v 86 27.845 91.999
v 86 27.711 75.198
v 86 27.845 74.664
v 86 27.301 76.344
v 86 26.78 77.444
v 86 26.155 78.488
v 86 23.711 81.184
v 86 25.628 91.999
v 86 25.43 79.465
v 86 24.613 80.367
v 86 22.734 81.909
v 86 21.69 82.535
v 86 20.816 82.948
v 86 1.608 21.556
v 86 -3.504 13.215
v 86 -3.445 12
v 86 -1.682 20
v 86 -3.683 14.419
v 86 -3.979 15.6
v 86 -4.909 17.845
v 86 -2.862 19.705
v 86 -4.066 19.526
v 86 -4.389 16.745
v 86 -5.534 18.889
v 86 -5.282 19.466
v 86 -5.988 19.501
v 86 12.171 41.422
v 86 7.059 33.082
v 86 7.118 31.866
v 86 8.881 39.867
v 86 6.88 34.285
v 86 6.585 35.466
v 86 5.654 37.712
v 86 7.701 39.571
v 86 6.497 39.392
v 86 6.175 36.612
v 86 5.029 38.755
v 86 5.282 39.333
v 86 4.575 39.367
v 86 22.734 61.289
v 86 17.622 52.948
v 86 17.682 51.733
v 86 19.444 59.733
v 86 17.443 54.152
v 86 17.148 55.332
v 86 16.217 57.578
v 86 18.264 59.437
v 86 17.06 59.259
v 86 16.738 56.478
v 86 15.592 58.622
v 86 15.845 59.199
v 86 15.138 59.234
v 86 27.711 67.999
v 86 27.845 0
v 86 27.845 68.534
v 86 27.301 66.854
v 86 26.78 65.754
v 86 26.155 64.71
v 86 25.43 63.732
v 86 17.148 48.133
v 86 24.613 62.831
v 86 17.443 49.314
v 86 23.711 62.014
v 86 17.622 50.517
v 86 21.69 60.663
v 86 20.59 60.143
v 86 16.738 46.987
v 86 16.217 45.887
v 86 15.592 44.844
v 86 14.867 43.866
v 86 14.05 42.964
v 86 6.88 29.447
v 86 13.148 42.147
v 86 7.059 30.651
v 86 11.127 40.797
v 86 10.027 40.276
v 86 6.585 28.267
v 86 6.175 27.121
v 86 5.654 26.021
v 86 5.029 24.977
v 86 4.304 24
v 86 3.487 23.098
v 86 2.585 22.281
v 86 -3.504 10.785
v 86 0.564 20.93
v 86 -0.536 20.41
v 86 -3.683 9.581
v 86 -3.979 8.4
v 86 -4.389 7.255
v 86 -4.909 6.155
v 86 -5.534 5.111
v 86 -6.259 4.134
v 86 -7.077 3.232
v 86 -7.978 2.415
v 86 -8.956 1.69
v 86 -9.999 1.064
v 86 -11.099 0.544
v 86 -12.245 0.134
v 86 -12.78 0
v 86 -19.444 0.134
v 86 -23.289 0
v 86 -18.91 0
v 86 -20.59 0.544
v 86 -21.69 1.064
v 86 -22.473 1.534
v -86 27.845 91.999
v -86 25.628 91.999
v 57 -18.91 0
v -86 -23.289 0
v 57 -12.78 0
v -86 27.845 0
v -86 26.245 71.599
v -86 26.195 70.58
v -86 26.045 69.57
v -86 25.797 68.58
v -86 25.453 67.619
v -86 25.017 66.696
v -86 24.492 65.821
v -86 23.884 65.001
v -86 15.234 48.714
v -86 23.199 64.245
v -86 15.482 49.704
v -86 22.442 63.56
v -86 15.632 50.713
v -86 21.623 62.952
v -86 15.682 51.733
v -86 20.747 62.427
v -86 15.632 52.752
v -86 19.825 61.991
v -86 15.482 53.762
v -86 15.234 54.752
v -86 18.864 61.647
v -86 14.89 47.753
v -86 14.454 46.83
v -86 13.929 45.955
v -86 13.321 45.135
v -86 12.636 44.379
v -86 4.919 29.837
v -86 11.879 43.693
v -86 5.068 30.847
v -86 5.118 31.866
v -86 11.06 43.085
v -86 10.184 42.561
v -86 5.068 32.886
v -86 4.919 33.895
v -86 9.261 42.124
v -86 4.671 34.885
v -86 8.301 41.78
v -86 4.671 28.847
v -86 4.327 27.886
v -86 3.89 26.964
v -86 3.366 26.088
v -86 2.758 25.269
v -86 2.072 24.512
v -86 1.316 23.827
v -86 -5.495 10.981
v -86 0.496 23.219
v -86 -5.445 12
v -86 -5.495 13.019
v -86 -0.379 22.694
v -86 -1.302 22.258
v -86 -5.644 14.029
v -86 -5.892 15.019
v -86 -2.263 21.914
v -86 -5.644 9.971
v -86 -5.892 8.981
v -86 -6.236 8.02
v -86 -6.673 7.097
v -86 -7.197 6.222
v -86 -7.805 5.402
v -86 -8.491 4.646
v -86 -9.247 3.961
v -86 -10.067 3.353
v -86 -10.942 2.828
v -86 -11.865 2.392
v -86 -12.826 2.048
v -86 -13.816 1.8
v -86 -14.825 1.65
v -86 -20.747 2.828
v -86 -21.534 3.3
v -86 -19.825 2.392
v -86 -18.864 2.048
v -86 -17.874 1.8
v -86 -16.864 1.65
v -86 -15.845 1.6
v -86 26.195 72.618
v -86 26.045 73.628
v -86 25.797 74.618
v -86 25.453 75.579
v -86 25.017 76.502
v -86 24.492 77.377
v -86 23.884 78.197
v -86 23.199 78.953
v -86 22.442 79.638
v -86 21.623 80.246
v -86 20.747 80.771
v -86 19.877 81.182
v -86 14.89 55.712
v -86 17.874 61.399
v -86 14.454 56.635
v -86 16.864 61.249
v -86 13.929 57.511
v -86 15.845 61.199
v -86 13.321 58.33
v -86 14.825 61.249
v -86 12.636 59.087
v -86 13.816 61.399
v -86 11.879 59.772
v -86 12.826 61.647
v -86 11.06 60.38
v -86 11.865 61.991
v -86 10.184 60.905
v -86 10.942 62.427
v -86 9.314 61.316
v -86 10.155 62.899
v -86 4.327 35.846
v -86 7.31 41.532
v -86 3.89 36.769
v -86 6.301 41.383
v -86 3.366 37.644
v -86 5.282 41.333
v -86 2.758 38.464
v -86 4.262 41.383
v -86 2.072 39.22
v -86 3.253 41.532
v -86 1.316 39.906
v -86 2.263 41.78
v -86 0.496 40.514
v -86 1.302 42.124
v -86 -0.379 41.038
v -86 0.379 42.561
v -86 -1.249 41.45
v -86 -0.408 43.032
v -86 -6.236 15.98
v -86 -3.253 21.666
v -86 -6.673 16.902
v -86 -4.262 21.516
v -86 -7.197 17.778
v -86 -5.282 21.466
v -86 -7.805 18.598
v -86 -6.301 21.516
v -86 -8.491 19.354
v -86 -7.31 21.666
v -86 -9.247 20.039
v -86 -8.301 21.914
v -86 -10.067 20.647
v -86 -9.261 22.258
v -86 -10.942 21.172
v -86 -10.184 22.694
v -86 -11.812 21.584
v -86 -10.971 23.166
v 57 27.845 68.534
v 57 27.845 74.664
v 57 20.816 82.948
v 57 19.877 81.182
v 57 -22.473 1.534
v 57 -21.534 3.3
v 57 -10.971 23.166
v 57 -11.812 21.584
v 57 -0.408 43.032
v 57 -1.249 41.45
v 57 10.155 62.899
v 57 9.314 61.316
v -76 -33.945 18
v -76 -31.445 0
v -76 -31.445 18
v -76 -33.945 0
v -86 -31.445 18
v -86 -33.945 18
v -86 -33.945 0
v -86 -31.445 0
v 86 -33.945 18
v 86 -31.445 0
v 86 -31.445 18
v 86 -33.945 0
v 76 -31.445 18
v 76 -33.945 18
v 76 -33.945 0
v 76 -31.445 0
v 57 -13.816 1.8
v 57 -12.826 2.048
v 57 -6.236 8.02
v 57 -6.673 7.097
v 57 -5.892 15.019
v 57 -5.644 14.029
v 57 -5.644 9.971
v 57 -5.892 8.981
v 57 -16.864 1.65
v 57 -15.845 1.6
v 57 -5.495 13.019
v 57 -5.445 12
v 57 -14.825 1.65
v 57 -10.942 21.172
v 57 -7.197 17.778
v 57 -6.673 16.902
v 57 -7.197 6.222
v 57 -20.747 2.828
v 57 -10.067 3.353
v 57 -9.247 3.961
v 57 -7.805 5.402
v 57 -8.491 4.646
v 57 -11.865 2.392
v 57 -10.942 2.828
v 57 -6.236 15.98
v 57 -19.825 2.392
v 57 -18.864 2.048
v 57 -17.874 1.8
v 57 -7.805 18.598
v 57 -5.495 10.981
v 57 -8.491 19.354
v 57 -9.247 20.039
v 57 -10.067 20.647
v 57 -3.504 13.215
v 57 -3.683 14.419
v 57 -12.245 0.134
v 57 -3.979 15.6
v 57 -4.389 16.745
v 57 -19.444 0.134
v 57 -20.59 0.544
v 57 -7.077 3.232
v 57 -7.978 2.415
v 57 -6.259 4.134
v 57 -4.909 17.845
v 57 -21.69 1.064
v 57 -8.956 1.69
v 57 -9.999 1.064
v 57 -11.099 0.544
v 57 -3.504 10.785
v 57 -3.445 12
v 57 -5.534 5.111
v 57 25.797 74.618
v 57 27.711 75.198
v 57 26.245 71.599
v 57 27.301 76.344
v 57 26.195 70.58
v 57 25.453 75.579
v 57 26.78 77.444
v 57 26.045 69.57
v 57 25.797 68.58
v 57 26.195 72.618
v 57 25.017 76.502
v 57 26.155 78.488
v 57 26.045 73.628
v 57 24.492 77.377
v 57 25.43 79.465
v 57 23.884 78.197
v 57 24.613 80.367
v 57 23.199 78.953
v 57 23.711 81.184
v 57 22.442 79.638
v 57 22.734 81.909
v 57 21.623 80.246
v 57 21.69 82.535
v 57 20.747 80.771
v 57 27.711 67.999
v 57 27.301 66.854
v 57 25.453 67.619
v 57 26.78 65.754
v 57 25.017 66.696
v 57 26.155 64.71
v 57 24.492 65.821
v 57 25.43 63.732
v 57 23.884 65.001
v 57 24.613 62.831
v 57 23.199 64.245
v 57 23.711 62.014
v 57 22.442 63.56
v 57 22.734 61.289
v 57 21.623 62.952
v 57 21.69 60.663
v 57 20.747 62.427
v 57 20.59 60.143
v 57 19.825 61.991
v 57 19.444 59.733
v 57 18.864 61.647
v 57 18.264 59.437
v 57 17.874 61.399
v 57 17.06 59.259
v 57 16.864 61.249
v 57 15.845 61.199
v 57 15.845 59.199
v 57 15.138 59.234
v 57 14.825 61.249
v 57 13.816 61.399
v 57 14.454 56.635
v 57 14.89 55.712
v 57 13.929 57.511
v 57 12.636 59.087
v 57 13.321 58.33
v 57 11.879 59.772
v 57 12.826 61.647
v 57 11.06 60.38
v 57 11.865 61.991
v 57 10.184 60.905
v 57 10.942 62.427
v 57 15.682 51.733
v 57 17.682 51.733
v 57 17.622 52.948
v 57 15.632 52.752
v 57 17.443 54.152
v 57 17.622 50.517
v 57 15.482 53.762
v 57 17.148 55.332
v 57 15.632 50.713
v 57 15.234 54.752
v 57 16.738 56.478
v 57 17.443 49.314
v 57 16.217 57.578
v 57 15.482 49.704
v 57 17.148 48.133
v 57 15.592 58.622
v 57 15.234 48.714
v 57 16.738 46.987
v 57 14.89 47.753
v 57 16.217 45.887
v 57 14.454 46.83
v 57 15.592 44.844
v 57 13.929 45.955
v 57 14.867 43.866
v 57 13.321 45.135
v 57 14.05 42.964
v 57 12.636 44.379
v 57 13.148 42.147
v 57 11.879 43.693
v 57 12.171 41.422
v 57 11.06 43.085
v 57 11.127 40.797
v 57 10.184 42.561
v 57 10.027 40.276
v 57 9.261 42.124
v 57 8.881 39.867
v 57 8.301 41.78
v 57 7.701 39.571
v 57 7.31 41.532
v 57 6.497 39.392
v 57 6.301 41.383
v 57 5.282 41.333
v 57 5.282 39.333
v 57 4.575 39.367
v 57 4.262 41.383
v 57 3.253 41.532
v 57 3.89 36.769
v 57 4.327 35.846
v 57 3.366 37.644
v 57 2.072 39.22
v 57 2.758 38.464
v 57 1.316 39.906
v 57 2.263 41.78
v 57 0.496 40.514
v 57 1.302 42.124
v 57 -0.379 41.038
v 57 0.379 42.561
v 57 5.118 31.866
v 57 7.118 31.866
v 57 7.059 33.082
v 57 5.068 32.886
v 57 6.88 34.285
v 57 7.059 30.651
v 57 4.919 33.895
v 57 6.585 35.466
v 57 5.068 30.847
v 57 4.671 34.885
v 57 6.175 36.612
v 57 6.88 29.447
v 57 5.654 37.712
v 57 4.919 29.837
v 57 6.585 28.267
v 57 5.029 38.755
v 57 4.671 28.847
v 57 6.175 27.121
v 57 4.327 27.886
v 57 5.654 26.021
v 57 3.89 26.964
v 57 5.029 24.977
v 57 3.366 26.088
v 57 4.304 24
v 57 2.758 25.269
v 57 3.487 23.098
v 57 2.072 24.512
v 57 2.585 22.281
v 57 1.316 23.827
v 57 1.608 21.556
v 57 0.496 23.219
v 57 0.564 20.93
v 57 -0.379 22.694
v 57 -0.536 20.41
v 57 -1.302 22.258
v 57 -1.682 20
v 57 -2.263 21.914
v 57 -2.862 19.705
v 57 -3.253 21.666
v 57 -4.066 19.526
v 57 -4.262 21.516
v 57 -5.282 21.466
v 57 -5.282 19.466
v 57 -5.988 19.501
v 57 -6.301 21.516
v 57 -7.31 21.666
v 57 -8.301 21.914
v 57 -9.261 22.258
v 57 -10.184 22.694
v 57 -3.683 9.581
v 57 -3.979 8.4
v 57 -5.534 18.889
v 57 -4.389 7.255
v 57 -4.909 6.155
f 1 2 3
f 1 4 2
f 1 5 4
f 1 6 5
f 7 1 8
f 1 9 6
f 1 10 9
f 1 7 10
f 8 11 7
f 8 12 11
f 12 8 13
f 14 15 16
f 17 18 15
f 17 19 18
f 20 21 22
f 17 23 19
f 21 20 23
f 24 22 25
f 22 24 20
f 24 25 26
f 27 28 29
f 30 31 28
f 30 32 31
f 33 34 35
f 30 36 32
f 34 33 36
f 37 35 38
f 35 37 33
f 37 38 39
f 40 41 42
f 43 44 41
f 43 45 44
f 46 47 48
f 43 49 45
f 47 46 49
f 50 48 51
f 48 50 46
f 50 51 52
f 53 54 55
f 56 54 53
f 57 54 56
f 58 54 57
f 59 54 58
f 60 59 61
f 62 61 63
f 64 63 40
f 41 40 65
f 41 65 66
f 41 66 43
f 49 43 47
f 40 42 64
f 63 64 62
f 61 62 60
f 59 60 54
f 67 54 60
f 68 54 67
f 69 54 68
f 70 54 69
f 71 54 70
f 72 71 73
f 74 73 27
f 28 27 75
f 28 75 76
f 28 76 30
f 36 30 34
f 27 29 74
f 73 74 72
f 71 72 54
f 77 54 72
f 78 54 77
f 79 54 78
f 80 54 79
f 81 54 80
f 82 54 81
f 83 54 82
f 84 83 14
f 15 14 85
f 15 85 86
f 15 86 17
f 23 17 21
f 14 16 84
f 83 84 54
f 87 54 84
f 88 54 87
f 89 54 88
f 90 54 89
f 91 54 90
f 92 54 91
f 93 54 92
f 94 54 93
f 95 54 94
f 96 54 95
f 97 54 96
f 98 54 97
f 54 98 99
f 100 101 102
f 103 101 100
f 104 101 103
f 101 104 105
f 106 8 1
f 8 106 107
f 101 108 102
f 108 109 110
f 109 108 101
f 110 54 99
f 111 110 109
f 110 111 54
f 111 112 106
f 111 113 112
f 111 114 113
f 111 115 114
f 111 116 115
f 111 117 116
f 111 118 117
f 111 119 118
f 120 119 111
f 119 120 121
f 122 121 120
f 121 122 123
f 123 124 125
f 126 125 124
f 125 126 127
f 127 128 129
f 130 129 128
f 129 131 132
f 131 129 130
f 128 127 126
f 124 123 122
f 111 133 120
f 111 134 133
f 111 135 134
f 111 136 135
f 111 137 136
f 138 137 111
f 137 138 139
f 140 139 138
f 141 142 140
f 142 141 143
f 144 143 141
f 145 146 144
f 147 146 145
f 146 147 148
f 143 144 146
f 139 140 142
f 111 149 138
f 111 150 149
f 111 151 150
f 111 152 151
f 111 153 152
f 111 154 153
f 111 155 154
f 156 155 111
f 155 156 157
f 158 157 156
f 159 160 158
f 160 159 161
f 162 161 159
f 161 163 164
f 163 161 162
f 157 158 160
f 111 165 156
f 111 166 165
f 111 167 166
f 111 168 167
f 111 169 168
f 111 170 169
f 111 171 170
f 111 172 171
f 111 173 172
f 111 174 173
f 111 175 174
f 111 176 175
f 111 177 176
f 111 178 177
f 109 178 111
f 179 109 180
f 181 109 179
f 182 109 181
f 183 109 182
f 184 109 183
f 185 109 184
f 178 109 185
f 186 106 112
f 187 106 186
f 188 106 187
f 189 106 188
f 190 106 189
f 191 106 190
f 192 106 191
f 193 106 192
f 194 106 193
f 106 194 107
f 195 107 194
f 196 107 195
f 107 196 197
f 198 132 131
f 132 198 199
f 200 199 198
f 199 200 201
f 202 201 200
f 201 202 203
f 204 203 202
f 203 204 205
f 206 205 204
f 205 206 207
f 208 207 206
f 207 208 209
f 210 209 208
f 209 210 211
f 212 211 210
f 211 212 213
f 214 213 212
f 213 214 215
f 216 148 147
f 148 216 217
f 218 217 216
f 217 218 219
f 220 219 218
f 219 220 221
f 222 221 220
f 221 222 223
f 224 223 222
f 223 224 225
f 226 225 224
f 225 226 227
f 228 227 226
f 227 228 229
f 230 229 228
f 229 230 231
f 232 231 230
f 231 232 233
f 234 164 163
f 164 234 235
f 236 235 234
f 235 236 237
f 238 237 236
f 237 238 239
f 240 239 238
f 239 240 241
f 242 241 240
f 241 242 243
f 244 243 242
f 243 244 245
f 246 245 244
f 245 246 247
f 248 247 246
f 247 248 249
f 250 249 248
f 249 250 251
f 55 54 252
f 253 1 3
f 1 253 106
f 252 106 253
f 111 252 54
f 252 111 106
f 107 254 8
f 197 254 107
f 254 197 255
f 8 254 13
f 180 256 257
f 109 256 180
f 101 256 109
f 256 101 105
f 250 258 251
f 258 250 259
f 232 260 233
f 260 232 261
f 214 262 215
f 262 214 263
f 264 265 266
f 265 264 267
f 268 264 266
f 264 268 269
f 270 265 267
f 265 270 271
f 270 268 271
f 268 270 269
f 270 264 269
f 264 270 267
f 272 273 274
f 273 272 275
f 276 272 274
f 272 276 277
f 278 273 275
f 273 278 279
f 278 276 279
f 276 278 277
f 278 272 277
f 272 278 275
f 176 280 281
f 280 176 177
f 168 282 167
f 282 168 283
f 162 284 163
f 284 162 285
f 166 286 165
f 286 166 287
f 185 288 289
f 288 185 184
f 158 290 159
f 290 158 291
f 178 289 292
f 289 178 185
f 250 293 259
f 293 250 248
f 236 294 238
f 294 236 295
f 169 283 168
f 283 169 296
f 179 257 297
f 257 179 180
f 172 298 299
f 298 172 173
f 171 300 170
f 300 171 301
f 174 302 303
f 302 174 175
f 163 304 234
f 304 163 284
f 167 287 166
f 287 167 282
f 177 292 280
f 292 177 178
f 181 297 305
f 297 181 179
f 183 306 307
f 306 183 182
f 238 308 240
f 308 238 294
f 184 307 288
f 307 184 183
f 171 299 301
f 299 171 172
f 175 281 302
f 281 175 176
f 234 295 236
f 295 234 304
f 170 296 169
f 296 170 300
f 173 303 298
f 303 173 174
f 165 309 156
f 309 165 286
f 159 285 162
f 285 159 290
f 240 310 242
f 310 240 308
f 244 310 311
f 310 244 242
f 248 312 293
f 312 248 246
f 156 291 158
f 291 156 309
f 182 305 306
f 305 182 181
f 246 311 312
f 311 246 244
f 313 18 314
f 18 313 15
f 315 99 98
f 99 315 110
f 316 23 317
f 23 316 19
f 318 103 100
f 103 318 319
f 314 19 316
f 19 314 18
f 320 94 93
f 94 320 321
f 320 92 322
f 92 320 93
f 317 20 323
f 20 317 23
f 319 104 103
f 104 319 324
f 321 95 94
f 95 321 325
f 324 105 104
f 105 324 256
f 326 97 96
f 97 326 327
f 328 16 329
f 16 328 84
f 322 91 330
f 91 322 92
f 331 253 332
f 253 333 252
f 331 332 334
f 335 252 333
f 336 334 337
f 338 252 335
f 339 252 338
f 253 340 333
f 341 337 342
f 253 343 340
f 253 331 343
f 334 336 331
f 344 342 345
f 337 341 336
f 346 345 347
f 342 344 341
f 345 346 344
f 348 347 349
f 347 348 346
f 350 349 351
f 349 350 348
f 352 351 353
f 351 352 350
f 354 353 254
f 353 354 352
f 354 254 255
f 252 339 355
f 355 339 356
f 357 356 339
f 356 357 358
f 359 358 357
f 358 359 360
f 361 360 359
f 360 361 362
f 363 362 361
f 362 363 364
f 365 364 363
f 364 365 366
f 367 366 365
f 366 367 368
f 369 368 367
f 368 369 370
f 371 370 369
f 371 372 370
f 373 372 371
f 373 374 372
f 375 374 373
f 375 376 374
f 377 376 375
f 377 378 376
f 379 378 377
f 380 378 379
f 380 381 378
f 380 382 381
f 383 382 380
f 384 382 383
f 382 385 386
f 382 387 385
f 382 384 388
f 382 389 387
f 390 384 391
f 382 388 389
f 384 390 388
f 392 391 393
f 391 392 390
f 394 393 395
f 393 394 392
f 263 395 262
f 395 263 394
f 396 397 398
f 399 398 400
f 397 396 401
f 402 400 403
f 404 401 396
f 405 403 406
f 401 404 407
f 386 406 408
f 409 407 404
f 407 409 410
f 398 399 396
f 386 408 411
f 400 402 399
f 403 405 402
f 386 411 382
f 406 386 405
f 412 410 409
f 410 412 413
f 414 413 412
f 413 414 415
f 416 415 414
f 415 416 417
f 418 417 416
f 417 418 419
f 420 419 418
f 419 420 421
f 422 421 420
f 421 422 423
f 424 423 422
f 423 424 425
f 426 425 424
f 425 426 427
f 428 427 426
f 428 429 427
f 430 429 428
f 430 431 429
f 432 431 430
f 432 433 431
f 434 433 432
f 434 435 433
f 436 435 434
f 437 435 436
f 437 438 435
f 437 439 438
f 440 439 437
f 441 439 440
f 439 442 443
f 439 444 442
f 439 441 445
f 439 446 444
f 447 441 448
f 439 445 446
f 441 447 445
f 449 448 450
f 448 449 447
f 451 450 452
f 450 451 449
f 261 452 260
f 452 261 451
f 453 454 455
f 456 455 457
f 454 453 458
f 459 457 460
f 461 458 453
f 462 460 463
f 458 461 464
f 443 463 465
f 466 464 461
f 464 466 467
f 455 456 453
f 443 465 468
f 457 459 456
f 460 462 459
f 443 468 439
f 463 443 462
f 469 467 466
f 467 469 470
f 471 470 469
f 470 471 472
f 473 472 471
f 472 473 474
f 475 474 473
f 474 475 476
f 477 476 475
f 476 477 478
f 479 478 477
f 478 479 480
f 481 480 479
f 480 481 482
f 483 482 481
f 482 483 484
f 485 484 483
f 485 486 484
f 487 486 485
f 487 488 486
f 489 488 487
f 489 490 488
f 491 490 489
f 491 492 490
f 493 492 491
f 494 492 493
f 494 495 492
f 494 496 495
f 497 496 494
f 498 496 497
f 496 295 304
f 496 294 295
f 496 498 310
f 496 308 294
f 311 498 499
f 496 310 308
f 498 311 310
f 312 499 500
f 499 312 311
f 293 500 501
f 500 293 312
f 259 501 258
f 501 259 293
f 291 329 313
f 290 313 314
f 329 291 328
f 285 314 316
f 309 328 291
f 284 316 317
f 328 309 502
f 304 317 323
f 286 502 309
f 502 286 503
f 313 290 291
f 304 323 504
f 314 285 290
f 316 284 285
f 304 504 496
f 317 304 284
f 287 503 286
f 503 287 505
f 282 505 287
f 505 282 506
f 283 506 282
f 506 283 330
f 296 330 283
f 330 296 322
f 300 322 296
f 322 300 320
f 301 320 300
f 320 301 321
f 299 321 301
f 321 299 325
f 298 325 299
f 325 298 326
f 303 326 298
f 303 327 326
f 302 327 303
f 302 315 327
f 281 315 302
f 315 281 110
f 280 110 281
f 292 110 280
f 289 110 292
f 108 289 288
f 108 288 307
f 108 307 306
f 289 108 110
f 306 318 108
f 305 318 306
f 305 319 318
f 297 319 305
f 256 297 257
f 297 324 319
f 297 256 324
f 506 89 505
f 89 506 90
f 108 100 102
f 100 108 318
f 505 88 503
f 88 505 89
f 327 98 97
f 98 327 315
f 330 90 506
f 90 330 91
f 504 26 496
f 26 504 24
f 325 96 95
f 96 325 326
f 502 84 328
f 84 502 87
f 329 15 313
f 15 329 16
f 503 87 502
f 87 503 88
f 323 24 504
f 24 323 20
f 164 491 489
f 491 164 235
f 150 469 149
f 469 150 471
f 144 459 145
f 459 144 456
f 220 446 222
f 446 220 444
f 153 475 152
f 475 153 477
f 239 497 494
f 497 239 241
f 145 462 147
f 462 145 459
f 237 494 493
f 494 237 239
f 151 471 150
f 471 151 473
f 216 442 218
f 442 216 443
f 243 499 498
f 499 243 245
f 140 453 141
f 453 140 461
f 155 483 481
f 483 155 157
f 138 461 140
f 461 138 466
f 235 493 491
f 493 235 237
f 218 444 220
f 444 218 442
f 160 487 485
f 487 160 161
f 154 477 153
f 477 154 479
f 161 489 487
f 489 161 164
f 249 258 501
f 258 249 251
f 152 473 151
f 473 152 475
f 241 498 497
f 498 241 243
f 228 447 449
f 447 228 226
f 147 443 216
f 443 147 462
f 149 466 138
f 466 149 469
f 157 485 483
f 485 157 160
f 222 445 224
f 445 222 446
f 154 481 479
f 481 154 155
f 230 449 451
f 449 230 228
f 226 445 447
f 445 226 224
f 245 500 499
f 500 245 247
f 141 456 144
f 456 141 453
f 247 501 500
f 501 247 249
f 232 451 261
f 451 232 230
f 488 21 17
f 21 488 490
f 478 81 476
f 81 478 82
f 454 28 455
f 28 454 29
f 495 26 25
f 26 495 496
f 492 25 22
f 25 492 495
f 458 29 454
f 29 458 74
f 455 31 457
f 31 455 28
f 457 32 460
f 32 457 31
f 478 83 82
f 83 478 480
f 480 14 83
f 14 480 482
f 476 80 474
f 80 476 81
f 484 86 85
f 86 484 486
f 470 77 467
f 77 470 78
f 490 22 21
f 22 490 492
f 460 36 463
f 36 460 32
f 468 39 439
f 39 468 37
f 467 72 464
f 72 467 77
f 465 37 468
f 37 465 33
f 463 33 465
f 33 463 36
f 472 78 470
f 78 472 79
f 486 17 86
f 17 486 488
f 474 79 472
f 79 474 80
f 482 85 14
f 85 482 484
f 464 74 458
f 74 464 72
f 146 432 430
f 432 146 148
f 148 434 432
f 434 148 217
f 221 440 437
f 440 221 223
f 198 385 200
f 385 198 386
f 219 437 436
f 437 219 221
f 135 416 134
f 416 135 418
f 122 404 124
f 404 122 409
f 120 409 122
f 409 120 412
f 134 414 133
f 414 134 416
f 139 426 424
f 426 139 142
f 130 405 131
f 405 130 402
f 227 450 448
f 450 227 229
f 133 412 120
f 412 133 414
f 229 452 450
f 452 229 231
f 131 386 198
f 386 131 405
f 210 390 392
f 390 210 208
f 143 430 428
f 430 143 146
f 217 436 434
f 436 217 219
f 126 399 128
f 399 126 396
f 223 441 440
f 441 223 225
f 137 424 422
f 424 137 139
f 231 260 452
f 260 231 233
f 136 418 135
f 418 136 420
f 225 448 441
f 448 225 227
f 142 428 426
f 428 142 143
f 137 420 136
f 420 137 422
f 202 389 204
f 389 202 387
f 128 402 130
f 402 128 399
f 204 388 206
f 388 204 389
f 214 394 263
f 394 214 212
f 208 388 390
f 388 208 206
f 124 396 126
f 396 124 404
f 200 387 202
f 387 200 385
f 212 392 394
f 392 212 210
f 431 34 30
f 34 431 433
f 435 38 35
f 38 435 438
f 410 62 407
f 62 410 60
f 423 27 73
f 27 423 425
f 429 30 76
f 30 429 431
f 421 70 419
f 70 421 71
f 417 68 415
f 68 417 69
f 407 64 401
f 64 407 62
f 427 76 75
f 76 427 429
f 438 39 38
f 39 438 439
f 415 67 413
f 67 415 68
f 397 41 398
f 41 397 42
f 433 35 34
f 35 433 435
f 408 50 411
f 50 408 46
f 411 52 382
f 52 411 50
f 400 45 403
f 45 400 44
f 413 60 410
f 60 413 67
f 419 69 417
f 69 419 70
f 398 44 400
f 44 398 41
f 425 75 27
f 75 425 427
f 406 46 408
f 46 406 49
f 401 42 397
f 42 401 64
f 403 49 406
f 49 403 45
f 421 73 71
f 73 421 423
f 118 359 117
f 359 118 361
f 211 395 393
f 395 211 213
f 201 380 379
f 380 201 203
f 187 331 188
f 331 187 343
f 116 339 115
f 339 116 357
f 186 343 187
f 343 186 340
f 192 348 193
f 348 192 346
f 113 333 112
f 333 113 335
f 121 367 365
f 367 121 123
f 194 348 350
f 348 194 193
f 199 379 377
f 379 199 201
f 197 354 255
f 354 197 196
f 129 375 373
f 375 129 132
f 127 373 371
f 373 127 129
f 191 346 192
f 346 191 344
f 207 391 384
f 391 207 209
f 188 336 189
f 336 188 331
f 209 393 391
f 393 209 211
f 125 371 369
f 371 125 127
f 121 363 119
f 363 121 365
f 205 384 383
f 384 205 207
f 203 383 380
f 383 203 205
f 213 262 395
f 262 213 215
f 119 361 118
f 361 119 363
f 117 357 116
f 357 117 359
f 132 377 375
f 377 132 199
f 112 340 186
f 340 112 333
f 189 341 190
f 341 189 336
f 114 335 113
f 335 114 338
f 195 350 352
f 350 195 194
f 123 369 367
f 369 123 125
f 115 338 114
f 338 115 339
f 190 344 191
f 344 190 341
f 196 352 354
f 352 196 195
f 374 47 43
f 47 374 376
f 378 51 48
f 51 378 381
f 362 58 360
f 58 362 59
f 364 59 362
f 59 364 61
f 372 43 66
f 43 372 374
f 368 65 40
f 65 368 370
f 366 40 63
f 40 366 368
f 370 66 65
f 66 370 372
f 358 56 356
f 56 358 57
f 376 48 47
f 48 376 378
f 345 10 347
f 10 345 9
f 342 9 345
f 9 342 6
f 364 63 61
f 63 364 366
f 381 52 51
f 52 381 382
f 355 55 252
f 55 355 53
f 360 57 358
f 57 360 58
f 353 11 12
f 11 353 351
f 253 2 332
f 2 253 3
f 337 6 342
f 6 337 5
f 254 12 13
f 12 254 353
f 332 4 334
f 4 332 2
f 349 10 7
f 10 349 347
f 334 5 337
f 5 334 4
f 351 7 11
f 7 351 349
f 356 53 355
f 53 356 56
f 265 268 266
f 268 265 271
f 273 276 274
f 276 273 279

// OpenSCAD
// file: common.scad
// ============================================================
// common.scad — shared parameters + modules for all designs
// LOCKED PEN SPECIFICATION (do not change)
// ============================================================
PEN_L = 165;      // pen length (mm)
PEN_A = 17;       // pen cross-section minor
PEN_B = 20;       // pen cross-section major (used as diameter envelope)
CLEAR = 0.4;      // fit clearance
WALL  = 1.6;      // minimum wall thickness

$fn = 64;

RCH = PEN_B/2 + CLEAR;   // = 10.4  channel radius
EPS = 0.01;

// --- open-top U trough cut, axis along X, centered at local origin -----------
// Removes a lower half-cylinder of radius r plus a full-width vertical slot
// upward, so the channel is open at the top (no ceiling -> no overhang).
module trough_cut(len, r=RCH, top=80) {
    union() {
        rotate([0,90,0]) cylinder(h=len, r=r, center=true);
        translate([0,0,top/2]) cube([len, 2*r, top], center=true); // slot upward
    }
}

// --- teardrop hole, axis along X, centered at local origin --------------------
// 45-degree self-supporting apex pointing +Z so a horizontal bore can print
// without support.
module teardrop_cut(len, r=RCH) {
    rotate([0,90,0])
        linear_extrude(height=len, center=true)
            union() {
                circle(r=r);
                polygon([[ 0.7071*r, 0.7071*r],
                         [ 0,         1.4142*r],
                         [-0.7071*r,  0.7071*r]]);
            }
}

// --- dial relief: widened open-top pocket at one channel end -----------------
// place at the +X or -X end of a channel so the dose dial clears / can be turned
module dial_relief(end_x, r=RCH+2.2, len=28, top=80) {
    translate([end_x, 0, 0]) trough_cut(len, r, top);
}
// file: gate_lib.scad
// gate_lib.scad — two-part front-removable rack: open cradle BODY + lift-off GATE
// The body is a reclined ramp with open grooves; pens pull straight out the
// front. A slim gate drops into a catch at each end and spans the front, blocking
// the pens until you lift it off. Everything is a loose/positive fit -> nothing
// tolerance-critical, no snap, no test print.
include <common.scad>

LBLK = PEN_L + 7;     // 172 body length
GTH  = 3.0;           // gate thickness
GCL  = 0.6;           // generous clearance for the gate-to-catch fit
TABW = 10;            // gate end-tab width (along X)

// ---- shared layout ---------------------------------------------------------
function _yc(n,P,phi,i) = (-(n-1)/2 + i) * P * cos(phi);
function _zc(n,P,phi,i) = (WALL + RCH) + i * P * sin(phi);
function _ymn(n,P,phi)  = _yc(n,P,phi,0)   - RCH - WALL;
function _ymx(n,P,phi)  = _yc(n,P,phi,n-1) + RCH + WALL;
function _Hb(n,P,phi)   = _zc(n,P,phi,n-1) + RCH + 10;
// up-slope length of the ramp face (gate height when printed standing)
function _faceL(n,P)    = (n-1)*P + 2*RCH + 8;

// 2D teardrop (45deg apex toward +Y) for self-supporting windows
module _td2d(r) {
    union() {
        circle(r=r);
        polygon([[0.7071*r,0.7071*r],[0,1.4142*r],[-0.7071*r,0.7071*r]]);
    }
}

// ===================== BODY (prints in this orientation) ====================
module body(n=4, phi=52, P=22.5, lip=2.0, rr=RCH+2, rlen=34) {
    cph=cos(phi); sph=sin(phi);
    yc=[for(i=[0:n-1]) _yc(n,P,phi,i)];
    zc=[for(i=[0:n-1]) _zc(n,P,phi,i)];
    ymn=_ymn(n,P,phi); ymx=_ymx(n,P,phi);
    Wb=ymx-ymn; ycen=(ymx+ymn)/2; Hb=_Hb(n,P,phi);
    relief_cx=LBLK/2-12; big=800;
    cxtab = LBLK/2 - TABW/2;     // catch sits just inside each end

    difference() {
        union() {
            // sheared wedge
            difference() {
                translate([0,ycen,Hb/2]) cube([LBLK,Wb,Hb],center=true);
                translate([0,yc[0],zc[0]+lip]) rotate([phi,0,0])
                    translate([0,0,big/2]) cube([LBLK+2,big,big],center=true);
            }
            // two end CATCHES: posts at the front-bottom corners with an
            // up-slope-open pocket the gate end-tab drops into
            for (sx=[-1,1])
                translate([sx*cxtab, ymn - GTH - GCL, 0])
                    catch_post(phi);
        }
        // open grooves (pen pulls out the front) + dial relief
        for (i=[0:n-1]) {
            translate([0,yc[i],zc[i]]) rotate([0,90,0]) cylinder(h=LBLK+2,r=RCH,center=true);
            translate([relief_cx,yc[i],zc[i]]) rotate([0,90,0]) cylinder(h=rlen,r=rr,center=true);
        }
        // pocket inside each catch (the slot the gate tab sits in)
        for (sx=[-1,1])
            translate([sx*cxtab, ymn - GTH/2, 0])
                catch_slot();
    }
}

module catch_post(phi) {
    // a small block in front of the ramp toe, tall enough to hold the gate
    translate([0,0,18/2]) cube([TABW, GTH+2, 18], center=true);
}
module catch_slot() {
    // open-topped slot the gate end-tab drops into (loose fit)
    translate([0,0,30]) cube([TABW+2*GCL, GTH+2*GCL, 60], center=true);
}

// ===================== GATE (authored STANDING for printing) ================
// Printed as a thin upright wall: X = length, Z = ramp-face height, Y = thickness
module gate(n=4, phi=52, P=22.5, rwin=6.5) {
    faceL=_faceL(n,P);
    difference() {
        union() {
            // main panel
            translate([0,0,faceL/2]) cube([LBLK, GTH, faceL], center=true);
            // two end tabs that drop into the body catches (extend below panel)
            for (sx=[-1,1])
                translate([sx*(LBLK/2 - TABW/2), 0, -7])
                    cube([TABW, GTH, 16], center=true);
        }
        // grab windows aligned to each pen's up-slope position
        for (i=[0:n-1])
            translate([0, 0, RCH + 4 + i*P])
                rotate([90,0,0]) linear_extrude(height=GTH+2, center=true) _td2d(rwin);
    }
}
// main file
// HERO body — reclined open-cradle rack, 4 pens pull straight out the front.
include <gate_lib.scad>
body(n=4, phi=62, P=22.5);
